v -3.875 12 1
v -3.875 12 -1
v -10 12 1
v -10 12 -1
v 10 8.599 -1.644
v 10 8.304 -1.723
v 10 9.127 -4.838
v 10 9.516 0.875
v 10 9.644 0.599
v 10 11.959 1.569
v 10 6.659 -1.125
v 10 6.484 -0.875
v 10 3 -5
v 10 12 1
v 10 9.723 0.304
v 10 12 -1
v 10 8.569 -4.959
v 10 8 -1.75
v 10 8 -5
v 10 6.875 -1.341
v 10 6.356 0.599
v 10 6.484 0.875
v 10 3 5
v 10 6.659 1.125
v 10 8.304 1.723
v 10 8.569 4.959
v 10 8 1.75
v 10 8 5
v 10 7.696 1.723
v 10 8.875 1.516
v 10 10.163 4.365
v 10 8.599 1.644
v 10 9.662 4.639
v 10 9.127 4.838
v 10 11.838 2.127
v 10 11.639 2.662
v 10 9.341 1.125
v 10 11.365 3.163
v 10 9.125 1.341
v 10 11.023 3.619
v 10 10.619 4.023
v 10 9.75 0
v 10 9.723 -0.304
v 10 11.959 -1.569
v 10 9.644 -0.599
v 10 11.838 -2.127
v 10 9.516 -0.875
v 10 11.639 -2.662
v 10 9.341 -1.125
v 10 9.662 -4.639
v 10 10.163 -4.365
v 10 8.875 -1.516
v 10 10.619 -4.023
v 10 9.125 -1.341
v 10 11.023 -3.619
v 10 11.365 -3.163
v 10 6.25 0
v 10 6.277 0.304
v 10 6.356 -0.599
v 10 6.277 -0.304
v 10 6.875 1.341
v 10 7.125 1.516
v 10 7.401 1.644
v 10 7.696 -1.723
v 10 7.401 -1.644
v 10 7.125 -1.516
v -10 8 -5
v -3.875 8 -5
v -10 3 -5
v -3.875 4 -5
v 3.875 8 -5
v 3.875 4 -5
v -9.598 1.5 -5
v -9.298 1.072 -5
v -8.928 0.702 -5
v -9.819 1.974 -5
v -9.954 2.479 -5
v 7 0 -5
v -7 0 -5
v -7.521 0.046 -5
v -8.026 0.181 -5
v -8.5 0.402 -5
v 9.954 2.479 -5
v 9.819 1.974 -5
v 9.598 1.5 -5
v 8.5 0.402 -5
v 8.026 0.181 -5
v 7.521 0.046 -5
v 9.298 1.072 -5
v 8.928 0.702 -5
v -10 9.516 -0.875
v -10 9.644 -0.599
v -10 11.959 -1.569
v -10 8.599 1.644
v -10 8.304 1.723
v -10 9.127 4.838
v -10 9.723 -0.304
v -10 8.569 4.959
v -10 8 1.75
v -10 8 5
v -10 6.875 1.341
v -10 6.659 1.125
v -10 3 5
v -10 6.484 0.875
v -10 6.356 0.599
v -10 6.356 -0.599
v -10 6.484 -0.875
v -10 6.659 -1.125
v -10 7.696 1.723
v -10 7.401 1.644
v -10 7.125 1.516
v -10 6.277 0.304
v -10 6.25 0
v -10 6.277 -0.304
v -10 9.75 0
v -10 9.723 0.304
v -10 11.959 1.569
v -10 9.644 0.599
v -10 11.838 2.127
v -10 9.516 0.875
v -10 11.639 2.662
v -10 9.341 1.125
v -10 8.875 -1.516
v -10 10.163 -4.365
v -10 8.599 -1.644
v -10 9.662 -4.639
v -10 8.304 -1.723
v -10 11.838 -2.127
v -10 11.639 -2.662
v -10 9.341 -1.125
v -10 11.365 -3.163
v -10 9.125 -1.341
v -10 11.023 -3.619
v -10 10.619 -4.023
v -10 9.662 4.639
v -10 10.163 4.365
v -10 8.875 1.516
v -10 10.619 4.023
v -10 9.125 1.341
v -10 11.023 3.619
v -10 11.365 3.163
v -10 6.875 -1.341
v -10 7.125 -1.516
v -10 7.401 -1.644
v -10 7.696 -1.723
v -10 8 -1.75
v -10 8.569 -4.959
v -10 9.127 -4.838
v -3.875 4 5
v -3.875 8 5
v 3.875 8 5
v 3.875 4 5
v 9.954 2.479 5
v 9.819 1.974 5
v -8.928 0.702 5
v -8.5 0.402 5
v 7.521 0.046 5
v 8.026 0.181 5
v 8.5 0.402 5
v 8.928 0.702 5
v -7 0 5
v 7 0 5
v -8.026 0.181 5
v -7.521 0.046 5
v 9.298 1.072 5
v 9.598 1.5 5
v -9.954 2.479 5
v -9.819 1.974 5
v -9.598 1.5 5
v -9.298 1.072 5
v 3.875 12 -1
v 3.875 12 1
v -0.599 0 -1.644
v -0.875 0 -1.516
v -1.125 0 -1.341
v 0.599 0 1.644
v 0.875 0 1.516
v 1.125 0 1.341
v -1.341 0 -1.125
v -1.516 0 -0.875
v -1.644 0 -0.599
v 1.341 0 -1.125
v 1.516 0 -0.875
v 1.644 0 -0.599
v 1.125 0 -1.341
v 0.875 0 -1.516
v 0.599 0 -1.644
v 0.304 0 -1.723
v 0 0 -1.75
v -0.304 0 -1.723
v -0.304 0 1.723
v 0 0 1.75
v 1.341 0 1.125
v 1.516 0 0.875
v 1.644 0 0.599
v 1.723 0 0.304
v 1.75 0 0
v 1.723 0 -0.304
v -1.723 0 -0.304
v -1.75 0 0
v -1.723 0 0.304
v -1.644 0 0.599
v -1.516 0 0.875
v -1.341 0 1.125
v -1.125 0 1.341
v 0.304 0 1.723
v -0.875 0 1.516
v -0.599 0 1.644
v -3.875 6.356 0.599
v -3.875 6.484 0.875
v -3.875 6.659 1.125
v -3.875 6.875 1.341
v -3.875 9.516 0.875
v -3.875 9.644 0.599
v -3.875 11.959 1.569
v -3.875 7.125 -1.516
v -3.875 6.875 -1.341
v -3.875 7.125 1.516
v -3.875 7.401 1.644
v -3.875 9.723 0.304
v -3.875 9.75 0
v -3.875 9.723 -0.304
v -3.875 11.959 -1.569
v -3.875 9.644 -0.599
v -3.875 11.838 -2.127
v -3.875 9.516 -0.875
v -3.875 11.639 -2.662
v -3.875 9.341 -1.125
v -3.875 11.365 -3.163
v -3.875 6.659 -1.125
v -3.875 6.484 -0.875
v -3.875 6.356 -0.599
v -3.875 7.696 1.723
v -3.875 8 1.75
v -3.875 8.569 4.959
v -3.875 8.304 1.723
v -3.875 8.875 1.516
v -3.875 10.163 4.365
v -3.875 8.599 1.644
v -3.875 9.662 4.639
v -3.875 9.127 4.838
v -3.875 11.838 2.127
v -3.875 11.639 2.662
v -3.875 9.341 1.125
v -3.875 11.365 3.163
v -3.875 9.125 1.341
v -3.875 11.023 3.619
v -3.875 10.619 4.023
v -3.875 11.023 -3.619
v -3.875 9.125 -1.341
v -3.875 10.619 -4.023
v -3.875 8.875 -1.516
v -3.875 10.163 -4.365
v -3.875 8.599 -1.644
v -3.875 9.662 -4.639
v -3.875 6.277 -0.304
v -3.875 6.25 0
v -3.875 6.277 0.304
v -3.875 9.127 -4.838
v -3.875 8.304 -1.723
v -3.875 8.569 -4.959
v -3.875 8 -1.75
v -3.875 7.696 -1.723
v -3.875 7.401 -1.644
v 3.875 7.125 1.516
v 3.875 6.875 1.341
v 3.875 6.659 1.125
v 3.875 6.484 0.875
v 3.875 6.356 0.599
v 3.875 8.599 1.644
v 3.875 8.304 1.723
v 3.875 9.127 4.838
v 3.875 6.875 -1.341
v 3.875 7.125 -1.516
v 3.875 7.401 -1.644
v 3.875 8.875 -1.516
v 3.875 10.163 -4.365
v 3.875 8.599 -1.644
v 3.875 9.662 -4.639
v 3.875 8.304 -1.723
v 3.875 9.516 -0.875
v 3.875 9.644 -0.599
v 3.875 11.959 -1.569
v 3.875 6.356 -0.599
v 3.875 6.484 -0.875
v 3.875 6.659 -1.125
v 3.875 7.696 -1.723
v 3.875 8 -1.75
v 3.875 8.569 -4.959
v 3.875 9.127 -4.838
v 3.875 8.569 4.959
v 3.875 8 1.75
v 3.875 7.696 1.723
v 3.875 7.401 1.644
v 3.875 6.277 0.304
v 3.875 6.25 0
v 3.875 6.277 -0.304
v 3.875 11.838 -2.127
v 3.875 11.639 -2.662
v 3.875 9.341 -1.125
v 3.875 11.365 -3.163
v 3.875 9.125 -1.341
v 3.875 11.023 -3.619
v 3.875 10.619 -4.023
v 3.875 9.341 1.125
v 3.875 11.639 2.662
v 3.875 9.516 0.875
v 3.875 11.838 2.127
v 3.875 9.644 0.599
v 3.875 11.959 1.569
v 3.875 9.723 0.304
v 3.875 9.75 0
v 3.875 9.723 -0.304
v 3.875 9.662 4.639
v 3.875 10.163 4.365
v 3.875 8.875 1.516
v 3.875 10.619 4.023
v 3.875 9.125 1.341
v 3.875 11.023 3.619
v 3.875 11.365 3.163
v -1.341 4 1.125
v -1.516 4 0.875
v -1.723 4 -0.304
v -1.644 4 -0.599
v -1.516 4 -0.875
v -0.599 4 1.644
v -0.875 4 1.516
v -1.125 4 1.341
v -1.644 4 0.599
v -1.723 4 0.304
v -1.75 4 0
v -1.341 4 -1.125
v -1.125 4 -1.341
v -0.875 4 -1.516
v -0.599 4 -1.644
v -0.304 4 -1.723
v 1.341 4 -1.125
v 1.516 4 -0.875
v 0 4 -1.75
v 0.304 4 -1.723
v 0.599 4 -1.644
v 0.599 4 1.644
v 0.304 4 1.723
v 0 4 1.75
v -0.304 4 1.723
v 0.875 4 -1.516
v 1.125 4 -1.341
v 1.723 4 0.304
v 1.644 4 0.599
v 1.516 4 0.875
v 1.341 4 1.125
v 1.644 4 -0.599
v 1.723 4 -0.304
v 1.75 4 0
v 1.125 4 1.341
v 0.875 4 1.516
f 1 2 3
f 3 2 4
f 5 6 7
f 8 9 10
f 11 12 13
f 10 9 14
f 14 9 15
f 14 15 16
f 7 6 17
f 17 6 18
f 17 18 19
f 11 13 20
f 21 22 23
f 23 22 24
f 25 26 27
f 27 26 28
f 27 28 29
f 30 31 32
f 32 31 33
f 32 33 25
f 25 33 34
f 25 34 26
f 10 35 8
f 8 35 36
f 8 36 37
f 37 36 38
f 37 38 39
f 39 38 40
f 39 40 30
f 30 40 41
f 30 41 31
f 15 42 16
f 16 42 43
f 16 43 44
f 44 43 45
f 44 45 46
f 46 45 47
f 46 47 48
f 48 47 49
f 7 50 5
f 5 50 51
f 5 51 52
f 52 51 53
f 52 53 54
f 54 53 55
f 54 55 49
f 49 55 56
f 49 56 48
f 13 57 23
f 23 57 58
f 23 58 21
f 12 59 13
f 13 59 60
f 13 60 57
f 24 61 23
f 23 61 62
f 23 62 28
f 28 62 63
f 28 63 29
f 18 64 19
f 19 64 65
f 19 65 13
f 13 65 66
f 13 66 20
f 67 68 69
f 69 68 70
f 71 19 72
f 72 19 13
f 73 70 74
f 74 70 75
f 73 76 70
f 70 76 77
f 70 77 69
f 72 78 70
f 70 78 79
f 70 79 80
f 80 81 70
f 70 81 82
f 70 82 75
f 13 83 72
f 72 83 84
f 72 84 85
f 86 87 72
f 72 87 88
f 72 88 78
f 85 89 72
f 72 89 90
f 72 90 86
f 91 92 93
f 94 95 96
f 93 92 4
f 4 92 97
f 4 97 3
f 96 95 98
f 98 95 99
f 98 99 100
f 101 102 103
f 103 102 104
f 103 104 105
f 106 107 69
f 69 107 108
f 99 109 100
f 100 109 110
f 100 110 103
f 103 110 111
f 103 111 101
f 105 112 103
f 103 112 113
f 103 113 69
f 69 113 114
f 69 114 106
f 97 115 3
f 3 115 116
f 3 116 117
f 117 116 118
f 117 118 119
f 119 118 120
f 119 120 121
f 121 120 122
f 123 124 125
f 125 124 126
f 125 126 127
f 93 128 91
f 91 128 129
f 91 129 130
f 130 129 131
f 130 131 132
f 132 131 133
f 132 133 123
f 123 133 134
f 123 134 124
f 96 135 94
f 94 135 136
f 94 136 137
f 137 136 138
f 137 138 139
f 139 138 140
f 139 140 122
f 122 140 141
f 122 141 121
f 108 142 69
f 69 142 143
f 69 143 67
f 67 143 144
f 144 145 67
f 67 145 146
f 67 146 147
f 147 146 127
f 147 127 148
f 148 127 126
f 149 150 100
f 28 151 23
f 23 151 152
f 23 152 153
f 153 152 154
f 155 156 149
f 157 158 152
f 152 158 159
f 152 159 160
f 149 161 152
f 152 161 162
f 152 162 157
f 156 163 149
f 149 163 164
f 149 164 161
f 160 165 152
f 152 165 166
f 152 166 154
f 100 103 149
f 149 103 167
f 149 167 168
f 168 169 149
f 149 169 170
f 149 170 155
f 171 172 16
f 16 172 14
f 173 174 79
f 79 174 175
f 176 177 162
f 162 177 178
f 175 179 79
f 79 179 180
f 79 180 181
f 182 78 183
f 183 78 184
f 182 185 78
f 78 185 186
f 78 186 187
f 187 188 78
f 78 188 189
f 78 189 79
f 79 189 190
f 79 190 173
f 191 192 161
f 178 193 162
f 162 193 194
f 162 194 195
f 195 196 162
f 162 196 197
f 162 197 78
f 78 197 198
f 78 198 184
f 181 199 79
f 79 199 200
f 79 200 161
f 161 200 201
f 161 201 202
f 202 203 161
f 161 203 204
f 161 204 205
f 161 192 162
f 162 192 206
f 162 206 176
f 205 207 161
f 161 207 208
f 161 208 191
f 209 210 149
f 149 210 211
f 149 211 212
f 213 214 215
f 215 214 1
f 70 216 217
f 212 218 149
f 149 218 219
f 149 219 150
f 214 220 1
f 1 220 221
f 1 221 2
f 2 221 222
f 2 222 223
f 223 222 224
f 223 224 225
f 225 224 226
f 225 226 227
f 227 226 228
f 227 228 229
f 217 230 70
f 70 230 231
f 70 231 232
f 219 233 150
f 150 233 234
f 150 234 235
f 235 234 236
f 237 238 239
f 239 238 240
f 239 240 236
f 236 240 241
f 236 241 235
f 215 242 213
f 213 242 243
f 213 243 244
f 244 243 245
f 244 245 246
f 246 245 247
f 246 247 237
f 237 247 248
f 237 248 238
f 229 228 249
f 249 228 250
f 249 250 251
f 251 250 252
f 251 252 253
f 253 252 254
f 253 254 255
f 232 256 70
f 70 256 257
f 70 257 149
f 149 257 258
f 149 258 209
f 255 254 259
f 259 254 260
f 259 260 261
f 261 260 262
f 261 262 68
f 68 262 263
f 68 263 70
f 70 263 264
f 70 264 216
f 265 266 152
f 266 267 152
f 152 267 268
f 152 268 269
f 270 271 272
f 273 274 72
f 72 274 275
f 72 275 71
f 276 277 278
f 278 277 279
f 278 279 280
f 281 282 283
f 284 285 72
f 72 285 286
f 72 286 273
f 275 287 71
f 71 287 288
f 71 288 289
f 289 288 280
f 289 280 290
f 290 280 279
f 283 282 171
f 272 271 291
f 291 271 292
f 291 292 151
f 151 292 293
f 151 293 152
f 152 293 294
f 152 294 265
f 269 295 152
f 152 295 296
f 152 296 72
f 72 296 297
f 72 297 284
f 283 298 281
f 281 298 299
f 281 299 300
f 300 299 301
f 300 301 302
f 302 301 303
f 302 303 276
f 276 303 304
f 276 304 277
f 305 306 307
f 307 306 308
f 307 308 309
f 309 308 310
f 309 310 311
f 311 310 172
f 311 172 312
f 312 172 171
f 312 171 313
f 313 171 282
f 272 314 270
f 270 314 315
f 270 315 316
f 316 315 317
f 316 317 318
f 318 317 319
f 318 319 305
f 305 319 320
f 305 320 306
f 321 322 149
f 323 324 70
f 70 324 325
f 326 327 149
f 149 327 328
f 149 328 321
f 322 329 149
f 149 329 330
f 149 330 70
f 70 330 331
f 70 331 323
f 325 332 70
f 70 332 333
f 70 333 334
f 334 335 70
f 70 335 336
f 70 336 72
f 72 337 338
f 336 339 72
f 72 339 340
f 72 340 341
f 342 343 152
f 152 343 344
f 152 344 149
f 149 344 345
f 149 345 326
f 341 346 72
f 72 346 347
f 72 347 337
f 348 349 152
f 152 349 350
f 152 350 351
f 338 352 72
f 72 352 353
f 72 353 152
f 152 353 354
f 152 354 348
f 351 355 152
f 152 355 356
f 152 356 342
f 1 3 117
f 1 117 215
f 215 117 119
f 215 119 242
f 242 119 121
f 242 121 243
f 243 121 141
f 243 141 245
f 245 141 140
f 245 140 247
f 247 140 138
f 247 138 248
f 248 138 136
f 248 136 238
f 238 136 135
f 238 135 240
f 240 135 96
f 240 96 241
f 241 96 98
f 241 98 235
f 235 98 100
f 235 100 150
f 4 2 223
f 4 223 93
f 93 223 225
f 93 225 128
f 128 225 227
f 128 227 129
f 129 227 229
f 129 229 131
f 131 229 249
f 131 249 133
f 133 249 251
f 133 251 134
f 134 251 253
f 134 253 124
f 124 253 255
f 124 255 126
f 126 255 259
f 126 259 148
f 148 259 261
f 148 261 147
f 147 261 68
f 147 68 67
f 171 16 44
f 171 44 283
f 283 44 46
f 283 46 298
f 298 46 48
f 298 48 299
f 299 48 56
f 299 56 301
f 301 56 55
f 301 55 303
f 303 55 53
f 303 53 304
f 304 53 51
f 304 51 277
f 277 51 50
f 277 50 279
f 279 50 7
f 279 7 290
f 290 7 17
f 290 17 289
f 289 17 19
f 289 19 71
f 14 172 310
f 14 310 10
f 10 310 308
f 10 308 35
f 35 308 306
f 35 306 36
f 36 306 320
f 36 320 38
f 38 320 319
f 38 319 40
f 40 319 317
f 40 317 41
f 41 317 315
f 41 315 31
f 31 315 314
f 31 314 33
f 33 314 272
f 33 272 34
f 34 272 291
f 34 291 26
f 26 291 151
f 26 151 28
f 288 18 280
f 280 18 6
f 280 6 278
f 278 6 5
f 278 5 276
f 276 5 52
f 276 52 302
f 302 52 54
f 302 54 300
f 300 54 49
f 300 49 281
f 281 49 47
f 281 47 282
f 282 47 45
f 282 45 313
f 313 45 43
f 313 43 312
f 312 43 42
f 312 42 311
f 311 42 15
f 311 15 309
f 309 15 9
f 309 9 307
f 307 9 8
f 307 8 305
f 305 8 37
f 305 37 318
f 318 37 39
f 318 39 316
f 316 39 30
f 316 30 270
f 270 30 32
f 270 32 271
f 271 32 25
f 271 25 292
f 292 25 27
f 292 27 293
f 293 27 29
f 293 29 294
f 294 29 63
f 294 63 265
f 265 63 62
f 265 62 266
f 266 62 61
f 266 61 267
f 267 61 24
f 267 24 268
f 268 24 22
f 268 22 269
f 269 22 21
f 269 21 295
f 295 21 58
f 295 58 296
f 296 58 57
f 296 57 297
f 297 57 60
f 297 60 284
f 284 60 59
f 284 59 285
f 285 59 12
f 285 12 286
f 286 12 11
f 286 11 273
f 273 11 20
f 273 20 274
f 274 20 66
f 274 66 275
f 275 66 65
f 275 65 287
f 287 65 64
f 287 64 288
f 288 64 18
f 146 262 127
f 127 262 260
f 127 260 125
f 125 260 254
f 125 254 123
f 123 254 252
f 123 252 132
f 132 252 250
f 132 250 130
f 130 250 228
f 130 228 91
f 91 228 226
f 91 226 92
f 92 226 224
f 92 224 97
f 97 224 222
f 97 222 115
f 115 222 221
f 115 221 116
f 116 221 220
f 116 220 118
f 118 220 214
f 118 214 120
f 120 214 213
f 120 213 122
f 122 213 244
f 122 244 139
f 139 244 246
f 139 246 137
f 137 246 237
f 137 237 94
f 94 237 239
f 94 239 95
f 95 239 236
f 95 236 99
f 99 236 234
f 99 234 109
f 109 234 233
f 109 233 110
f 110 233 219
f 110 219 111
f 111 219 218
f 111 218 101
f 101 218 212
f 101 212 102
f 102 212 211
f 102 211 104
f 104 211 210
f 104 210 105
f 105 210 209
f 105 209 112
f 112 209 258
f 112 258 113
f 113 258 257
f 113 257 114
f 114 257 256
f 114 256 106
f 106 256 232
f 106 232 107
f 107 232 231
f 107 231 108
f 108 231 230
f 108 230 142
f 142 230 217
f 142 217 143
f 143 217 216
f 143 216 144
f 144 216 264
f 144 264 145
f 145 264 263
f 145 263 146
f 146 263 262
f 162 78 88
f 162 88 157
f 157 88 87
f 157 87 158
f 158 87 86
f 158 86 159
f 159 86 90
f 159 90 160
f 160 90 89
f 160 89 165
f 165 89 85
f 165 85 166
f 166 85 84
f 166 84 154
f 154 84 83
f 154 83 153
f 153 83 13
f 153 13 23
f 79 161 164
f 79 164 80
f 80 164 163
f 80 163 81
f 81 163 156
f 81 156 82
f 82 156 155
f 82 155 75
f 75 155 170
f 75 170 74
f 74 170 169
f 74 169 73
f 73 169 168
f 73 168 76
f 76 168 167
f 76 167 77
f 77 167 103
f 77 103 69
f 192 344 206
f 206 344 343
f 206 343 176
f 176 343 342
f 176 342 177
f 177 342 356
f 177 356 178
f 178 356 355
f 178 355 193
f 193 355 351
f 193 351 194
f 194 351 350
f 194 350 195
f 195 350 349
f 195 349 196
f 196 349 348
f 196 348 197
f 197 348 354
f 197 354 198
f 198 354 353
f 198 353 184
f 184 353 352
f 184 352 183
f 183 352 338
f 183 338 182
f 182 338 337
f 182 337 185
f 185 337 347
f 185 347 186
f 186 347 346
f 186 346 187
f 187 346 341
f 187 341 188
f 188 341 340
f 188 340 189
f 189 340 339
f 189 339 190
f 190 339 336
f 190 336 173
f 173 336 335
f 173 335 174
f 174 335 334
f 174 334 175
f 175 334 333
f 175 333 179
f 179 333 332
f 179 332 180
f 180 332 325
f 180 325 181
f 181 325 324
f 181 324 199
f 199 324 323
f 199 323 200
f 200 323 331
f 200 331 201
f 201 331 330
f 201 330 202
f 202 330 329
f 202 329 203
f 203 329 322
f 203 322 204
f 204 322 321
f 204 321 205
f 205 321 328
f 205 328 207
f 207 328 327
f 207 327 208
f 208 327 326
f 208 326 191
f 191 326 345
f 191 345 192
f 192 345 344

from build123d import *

# Parameters (mm, degrees)
SKETCH1_W           = 20
SKETCH1_H           = 10
BOSS_EXTRUDE1_DEPTH = 12
SKETCH2_W           = 7.749887486
SKETCH2_H           = 10
CUT_EXTRUDE1_DEPTH  = 8
FILLET1_R           = 4
SKETCH3_R           = 1.75
CUT_EXTRUDE2_DEPTH  = 21
FILLET2_R           = 3
SKETCH4_R           = 1.75
CUT_EXTRUDE3_DEPTH  = 5


with BuildPart() as part:
    # Sketch1 → Boss-Extrude1 (new body)
    with BuildSketch(Plane(origin=(0, 0, 0), x_dir=(1, 0, 0), z_dir=(0, 1, 0))):
        Rectangle(SKETCH1_W, SKETCH1_H)
    extrude(amount=BOSS_EXTRUDE1_DEPTH)

    # Sketch2 → Cut-Extrude1 (cut)
    with BuildSketch(Plane(origin=(0, 12, 0), x_dir=(1, 0, 0), z_dir=(0, 1, 0))):
        Rectangle(SKETCH2_W, SKETCH2_H)
    extrude(amount=-CUT_EXTRUDE1_DEPTH, mode=Mode.SUBTRACT)

    # Fillet1
    fillet1_edges = [part.edges().sort_by_distance(p)[0] for p in [
        (-6.937471871, 12, -5),
        (6.937471871, 12, 5),
        (-6.937471871, 12, 5),
        (6.937471871, 12, -5),
    ]]
    fillet(fillet1_edges, radius=FILLET1_R)

    # Sketch3 → Cut-Extrude2 (cut, through all)
    with BuildSketch(Plane(origin=(10, 0, 0), x_dir=(0, 0, -1), z_dir=(1, 0, 0))):
        with Locations((0, 8)):
            Circle(SKETCH3_R)
    extrude(amount=-CUT_EXTRUDE2_DEPTH, mode=Mode.SUBTRACT)

    # Fillet2
    fillet2_edges = [part.edges().sort_by_distance(p)[0] for p in [
        (-10, 0, 0),
        (10, 0, 0),
    ]]
    fillet(fillet2_edges, radius=FILLET2_R)

    # Sketch4 → Cut-Extrude3 (cut, through all)
    with BuildSketch(Plane(origin=(0, 4, 0), x_dir=(1, 0, 0), z_dir=(0, 1, 0))):
        Circle(SKETCH4_R)
    extrude(amount=-CUT_EXTRUDE3_DEPTH, mode=Mode.SUBTRACT)


solid = part.part
